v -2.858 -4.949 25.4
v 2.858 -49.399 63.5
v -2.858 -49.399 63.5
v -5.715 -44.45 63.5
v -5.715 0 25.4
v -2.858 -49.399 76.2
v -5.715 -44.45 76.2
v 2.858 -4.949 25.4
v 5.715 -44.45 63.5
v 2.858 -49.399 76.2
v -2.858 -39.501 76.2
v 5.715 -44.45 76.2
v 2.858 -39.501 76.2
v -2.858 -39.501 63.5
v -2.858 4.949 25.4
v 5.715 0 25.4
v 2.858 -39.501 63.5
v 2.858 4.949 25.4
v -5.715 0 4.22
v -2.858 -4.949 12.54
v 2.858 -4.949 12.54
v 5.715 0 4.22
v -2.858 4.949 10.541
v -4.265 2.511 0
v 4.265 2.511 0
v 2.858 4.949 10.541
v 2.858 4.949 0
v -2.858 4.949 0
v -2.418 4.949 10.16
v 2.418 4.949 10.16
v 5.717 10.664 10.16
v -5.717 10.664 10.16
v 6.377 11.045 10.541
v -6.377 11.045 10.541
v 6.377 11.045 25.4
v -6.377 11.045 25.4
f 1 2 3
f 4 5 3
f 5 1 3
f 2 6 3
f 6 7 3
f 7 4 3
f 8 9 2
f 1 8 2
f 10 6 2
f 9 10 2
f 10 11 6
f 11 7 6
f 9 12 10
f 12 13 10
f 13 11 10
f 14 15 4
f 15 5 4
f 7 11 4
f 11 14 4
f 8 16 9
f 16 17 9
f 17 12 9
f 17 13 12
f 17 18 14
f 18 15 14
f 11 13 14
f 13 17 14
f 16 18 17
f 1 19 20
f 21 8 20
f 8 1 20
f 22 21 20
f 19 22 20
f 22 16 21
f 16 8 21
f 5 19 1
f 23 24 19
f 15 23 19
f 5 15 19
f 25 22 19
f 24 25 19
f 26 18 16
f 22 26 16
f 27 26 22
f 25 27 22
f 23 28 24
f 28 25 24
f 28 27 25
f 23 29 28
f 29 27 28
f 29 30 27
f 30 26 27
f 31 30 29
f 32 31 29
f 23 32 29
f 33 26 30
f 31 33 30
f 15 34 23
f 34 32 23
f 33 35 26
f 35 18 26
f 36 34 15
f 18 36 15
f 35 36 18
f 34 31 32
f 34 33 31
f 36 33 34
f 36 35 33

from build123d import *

# Parameters (mm, degrees)
BOSS_EXTRUDE1_DEPTH = 25.4
BOSS_EXTRUDE2_DEPTH = 12.7
BOSS_EXTRUDE3_DEPTH = 25.4
CHAMFER1_SIZE       = 7.46
CHAMFER1_SIZE2      = 12.54
CUT_EXTRUDE1_DEPTH  = 10.16
CHAMFER7_SIZE       = 0.381


with BuildPart() as part:
    # Sketch1 → Boss-Extrude1 (new body)
    with BuildSketch(Plane.XY):
        Polygon((5.715, 0), (2.8575, 4.949335183), (-2.8575, 4.949335183), (-5.715, 0), (-2.8575, -4.949335183), (2.8575, -4.949335183), align=None)
    extrude(amount=BOSS_EXTRUDE1_DEPTH)



with BuildPart() as body_2:
    # Sketch2 → Boss-Extrude2 (new body)
    with BuildSketch(Plane.XY.offset(63.5)):
        Polygon((-2.8575, -49.399335183), (2.8575, -49.399335183), (5.715, -44.45), (2.8575, -39.500664817), (-2.8575, -39.500664817), (-5.715, -44.45), align=None)
    extrude(amount=BOSS_EXTRUDE2_DEPTH)


with BuildPart() as part_1:
    add(part.part)

    add(body_2.part)  # loft1 joins it to this body
    # loft from a face of the part (loft1)
    loft([part_1.faces().sort_by_distance((0, 0, 25.4))[0], part_1.faces().sort_by_distance((0, -44.45, 63.5))[0]])

    # Sketch4 → Boss-Extrude3 (add)
    with BuildSketch(Plane(origin=(0, 0, 0), x_dir=(-1, 0, 0), z_dir=(0, 0, -1))):
        Polygon((2.8575, 4.949335183), (6.377027241, 11.045335183), (-6.377027241, 11.045335183), (-2.8575, 4.949335183), align=None)
    extrude(amount=-BOSS_EXTRUDE3_DEPTH)

    # Chamfer1
    chamfer1_edges = [part_1.edges().sort_by_distance(p)[0] for p in [
        (0, -4.949335183, 0),
    ]]
    chamfer1_side = [part_1.faces().sort_by_distance(p)[0] for p in [
        (0, 3.343943544, 0),
    ]]
    chamfer(chamfer1_edges, length=CHAMFER1_SIZE, length2=CHAMFER1_SIZE2, reference=chamfer1_side[0])

    # Sketch8 → Cut-Extrude1 (cut)
    with BuildSketch(Plane(origin=(0, 0, 0), x_dir=(-1, 0, 0), z_dir=(0, 0, -1))):
        Polygon((-6.377027241, 11.045335183), (6.377027241, 11.045335183), (2.8575, 4.949335183), (-2.8575, 4.949335183), align=None)
    extrude(amount=-CUT_EXTRUDE1_DEPTH, mode=Mode.SUBTRACT)

    # Chamfer7
    chamfer7_edges = [part_1.edges().sort_by_distance(p)[0] for p in [
        (4.61726362, 7.997335183, 10.16),
        (0, 11.045335183, 10.16),
        (-4.61726362, 7.997335183, 10.16),
    ]]
    chamfer(chamfer7_edges, length=CHAMFER7_SIZE)


solid = part_1.part
